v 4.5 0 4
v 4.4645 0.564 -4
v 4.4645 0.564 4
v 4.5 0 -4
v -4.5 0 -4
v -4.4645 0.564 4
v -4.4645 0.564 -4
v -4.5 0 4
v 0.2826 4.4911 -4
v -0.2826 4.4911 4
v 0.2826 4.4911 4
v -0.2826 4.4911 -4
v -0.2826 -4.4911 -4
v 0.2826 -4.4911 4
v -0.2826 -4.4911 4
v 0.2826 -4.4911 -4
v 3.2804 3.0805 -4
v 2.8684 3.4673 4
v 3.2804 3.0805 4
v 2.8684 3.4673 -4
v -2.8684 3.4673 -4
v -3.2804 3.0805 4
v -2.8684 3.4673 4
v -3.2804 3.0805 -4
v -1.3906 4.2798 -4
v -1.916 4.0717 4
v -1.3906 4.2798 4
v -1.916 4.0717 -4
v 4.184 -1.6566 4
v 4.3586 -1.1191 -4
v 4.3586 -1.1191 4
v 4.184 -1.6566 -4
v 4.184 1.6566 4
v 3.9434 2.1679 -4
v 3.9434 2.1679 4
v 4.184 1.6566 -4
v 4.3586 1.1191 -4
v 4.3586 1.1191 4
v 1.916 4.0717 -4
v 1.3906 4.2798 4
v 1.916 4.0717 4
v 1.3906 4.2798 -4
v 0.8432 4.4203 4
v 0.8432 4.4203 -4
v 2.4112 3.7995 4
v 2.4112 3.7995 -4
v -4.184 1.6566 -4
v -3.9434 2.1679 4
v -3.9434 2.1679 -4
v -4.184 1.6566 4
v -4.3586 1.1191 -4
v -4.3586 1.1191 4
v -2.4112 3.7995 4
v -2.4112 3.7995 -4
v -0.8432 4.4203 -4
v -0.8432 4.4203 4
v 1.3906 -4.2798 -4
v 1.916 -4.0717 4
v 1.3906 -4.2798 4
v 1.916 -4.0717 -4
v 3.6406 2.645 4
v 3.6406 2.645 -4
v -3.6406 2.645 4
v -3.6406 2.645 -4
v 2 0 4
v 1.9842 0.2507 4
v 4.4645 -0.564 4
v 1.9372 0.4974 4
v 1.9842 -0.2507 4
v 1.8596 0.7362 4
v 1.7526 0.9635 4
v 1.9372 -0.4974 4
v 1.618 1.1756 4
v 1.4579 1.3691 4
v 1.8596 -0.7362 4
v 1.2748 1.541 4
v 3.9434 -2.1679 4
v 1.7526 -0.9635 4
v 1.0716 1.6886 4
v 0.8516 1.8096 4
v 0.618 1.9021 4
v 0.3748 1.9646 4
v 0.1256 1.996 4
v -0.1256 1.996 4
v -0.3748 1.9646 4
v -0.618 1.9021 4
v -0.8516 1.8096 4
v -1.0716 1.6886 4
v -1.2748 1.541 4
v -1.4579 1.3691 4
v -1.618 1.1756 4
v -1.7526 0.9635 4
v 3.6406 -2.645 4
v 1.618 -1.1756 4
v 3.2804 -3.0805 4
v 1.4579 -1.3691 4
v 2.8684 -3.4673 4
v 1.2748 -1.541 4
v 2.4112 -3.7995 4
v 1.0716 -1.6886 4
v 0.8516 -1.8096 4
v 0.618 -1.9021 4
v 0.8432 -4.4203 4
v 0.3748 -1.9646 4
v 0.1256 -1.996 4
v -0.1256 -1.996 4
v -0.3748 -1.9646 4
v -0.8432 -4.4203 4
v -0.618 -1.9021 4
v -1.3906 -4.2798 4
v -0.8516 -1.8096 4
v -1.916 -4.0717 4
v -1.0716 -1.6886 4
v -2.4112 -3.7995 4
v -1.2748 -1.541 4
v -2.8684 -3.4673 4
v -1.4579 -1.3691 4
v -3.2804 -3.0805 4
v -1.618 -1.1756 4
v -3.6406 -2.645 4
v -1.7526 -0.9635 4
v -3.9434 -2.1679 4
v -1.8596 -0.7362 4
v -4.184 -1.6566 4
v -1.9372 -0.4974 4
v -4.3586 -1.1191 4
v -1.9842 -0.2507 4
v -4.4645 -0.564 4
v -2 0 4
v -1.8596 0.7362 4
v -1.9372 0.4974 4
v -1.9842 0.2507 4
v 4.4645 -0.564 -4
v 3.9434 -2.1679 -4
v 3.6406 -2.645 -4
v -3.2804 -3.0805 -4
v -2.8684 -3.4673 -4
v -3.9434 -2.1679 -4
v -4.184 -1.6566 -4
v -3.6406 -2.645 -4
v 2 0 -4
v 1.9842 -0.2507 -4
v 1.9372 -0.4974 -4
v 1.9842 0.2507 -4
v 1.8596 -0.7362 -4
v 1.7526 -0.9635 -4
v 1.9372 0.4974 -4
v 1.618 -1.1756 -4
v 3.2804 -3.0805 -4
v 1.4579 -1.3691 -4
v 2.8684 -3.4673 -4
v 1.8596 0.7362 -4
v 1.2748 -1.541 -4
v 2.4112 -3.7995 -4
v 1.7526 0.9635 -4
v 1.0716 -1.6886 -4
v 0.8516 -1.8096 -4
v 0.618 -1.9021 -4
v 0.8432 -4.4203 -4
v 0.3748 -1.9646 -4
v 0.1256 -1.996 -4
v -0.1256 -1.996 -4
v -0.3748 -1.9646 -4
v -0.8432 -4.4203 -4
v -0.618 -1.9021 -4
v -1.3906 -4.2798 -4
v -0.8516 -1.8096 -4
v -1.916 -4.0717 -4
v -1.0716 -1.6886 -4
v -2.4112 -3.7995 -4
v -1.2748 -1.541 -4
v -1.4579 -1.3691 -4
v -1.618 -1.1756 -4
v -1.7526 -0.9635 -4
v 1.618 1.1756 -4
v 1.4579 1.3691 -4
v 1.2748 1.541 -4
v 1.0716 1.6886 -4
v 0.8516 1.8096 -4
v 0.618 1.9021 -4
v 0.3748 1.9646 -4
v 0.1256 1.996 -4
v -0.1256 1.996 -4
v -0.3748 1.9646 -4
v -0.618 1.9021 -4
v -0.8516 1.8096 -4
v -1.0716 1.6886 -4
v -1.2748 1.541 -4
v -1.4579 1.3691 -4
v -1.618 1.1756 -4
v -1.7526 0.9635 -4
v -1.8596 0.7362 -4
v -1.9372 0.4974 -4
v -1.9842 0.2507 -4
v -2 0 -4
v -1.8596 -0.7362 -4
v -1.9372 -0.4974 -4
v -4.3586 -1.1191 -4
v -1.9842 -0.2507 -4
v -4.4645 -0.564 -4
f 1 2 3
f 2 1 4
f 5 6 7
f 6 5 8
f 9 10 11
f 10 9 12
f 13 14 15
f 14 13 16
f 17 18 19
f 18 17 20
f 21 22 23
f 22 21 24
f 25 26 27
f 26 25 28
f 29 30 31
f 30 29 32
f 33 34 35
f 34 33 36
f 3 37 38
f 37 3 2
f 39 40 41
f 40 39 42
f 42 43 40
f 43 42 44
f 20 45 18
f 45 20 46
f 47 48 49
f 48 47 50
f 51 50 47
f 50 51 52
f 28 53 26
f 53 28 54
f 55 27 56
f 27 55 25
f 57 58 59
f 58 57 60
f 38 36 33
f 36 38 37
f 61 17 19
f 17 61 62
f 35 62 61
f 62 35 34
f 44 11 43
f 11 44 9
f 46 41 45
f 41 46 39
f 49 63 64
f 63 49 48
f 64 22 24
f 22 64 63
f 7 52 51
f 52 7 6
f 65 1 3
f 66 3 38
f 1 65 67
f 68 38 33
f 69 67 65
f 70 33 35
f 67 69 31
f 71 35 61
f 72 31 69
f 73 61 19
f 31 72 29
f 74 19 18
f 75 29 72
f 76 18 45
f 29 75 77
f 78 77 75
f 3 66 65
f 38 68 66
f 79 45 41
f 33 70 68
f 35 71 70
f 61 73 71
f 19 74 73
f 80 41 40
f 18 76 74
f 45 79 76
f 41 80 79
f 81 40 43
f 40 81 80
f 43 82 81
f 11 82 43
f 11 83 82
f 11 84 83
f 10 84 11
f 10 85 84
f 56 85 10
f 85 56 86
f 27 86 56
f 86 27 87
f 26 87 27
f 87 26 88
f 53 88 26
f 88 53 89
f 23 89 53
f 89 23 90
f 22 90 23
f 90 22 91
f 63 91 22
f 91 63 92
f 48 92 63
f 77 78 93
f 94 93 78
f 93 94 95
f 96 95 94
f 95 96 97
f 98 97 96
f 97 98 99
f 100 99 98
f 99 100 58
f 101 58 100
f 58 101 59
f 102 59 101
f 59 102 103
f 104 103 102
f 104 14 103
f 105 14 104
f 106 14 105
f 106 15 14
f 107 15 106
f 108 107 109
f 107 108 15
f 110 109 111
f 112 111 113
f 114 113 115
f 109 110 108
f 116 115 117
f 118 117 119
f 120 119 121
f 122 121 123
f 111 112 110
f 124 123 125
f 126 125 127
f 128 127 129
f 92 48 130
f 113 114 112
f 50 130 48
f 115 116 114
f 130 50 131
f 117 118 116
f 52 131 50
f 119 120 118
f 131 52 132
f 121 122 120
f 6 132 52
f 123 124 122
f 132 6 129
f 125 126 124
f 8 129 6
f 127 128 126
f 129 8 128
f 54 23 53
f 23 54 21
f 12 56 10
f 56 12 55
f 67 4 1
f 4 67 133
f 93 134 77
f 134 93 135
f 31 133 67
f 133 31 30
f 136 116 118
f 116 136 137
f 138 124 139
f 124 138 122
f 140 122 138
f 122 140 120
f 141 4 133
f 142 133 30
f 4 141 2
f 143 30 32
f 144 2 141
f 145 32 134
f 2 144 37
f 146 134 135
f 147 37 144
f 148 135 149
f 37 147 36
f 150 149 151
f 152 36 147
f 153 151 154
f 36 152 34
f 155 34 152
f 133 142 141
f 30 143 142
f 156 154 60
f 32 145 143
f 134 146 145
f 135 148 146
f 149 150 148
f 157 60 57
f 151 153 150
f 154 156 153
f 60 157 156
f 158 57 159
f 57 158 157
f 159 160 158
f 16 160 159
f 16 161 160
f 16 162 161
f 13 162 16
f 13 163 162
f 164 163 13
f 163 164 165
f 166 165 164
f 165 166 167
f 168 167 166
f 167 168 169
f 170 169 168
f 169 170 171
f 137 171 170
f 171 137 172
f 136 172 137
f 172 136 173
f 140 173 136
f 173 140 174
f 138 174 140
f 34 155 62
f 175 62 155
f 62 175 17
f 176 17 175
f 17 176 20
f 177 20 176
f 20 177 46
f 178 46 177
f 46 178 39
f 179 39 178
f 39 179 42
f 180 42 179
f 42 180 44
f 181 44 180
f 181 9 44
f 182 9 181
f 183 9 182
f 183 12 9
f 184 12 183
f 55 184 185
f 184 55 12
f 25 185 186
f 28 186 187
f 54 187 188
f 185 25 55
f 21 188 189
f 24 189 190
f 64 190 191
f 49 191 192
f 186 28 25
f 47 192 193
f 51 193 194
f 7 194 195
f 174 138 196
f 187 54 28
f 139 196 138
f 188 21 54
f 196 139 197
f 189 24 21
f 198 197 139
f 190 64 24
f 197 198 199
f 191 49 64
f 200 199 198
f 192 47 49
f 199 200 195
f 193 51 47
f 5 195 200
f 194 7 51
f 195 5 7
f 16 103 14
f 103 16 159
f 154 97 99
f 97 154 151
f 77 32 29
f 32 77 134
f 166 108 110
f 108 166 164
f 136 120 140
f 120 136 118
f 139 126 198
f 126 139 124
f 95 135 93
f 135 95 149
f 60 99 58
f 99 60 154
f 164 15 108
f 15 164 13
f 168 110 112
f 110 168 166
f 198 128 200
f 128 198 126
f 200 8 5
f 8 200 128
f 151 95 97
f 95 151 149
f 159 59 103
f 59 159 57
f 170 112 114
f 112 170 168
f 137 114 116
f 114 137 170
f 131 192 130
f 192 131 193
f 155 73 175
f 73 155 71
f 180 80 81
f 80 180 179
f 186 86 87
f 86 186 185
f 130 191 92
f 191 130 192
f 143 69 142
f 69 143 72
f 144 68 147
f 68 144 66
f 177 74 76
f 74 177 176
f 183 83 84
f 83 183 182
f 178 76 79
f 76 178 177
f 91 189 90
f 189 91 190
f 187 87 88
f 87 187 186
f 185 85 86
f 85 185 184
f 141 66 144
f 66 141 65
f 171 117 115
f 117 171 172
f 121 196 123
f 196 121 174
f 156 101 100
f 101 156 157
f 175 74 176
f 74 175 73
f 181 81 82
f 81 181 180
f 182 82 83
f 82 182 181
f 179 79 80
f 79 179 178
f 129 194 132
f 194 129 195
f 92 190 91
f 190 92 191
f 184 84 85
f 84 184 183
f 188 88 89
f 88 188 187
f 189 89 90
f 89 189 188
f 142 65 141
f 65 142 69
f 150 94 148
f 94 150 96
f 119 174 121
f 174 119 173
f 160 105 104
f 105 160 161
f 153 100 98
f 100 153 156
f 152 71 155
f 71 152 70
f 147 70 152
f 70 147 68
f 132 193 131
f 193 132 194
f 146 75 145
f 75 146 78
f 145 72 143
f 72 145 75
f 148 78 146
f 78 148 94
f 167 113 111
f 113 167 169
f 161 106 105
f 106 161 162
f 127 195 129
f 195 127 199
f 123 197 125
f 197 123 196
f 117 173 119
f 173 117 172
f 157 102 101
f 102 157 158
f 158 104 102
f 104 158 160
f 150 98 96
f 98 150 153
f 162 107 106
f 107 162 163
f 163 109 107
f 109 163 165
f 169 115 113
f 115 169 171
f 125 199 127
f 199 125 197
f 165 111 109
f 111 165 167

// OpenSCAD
$fn = 50;


difference() {
	union() {
		translate(v = [0, 0, -4.0000000000]) {
			cylinder(h = 8, r = 4.5000000000);
		}
	}
	union() {
		translate(v = [0, 0, -100.0000000000]) {
			cylinder(h = 200, r = 2);
		}
	}
}
